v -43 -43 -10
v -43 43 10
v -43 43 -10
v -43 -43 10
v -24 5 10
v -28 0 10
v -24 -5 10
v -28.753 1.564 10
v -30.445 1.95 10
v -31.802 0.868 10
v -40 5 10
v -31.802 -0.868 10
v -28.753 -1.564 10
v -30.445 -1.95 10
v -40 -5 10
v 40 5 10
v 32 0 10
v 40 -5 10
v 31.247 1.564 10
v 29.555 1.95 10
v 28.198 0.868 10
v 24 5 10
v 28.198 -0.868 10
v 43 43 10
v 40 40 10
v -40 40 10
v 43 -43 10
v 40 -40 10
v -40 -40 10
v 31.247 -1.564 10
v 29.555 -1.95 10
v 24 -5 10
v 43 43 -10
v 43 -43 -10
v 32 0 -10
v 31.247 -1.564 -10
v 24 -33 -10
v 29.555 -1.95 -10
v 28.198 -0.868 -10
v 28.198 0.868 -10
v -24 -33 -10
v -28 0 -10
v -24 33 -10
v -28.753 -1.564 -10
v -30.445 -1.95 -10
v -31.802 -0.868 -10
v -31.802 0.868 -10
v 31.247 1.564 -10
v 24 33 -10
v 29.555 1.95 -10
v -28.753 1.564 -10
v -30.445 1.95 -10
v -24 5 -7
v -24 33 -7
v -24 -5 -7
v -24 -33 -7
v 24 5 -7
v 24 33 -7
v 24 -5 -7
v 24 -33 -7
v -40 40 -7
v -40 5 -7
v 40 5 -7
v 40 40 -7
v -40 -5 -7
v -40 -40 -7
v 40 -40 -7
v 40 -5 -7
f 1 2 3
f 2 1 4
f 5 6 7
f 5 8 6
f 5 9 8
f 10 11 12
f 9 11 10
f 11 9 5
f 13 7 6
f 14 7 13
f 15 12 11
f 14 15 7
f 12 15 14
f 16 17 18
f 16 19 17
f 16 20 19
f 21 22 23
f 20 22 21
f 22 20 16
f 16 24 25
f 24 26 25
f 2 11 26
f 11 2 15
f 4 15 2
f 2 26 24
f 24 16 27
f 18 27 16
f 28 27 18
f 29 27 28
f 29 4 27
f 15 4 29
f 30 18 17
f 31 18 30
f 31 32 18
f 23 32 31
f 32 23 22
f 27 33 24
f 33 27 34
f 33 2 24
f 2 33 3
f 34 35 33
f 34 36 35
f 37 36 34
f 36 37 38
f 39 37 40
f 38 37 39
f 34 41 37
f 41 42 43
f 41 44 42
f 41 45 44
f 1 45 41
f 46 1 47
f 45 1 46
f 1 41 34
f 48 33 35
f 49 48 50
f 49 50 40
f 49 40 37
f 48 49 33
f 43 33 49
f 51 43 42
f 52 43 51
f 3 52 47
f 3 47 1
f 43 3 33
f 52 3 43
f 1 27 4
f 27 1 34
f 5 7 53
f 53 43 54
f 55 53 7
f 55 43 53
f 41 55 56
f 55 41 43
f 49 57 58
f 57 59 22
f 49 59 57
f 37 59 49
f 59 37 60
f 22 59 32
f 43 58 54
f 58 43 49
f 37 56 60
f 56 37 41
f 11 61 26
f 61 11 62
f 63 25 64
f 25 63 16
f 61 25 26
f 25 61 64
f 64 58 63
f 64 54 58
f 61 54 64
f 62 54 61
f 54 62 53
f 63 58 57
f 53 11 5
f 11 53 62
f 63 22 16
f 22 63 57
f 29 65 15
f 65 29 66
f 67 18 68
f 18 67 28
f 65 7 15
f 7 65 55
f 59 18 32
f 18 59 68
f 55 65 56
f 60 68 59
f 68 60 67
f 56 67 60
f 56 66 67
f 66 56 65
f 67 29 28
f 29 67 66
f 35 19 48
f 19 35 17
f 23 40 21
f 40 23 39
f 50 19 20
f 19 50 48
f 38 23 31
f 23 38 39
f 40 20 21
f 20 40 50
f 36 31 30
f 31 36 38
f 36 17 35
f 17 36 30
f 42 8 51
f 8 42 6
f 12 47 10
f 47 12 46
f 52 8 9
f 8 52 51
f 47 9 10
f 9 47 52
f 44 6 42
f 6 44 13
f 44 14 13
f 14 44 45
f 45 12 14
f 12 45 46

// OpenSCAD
//Box for PIR light
// Model: Big box - electrical part - two other clearings - 2 drill holes.

bx       = [86,86,20];     // Big box
electric = [48,66,30];     //electrical part
wt             = 3 ;       // wall thickness
screwthickness = 10;
drilldisp      = 60/2;     // drill holes are 60mm apart 
w  = bx[1] / 2 - screwthickness/2 -wt;   //Width of clearing
td = w/2 + screwthickness/2 ;    //How much to displace box clearing

echo(td);
echo (w);

difference(){

    cube(bx,center=true);  //main box
    //--- Difference
    cube(electric, center= true); //electrical part
    translate([0,td,wt]) cube([bx[0]-wt*2,w,bx[2]],center=true); //top internal clear
    translate([0,-td,wt]) cube([bx[0]-wt*2,w,bx[2]],center=true); //bottom internal clearing
  // drill holes 60mm apart
   translate([drilldisp,0,0])cylinder(r =2,h=60,center =true); //drill hole
   translate([-drilldisp,0,0])cylinder(r =2,h=60,center =true); //drill hole
}

      
